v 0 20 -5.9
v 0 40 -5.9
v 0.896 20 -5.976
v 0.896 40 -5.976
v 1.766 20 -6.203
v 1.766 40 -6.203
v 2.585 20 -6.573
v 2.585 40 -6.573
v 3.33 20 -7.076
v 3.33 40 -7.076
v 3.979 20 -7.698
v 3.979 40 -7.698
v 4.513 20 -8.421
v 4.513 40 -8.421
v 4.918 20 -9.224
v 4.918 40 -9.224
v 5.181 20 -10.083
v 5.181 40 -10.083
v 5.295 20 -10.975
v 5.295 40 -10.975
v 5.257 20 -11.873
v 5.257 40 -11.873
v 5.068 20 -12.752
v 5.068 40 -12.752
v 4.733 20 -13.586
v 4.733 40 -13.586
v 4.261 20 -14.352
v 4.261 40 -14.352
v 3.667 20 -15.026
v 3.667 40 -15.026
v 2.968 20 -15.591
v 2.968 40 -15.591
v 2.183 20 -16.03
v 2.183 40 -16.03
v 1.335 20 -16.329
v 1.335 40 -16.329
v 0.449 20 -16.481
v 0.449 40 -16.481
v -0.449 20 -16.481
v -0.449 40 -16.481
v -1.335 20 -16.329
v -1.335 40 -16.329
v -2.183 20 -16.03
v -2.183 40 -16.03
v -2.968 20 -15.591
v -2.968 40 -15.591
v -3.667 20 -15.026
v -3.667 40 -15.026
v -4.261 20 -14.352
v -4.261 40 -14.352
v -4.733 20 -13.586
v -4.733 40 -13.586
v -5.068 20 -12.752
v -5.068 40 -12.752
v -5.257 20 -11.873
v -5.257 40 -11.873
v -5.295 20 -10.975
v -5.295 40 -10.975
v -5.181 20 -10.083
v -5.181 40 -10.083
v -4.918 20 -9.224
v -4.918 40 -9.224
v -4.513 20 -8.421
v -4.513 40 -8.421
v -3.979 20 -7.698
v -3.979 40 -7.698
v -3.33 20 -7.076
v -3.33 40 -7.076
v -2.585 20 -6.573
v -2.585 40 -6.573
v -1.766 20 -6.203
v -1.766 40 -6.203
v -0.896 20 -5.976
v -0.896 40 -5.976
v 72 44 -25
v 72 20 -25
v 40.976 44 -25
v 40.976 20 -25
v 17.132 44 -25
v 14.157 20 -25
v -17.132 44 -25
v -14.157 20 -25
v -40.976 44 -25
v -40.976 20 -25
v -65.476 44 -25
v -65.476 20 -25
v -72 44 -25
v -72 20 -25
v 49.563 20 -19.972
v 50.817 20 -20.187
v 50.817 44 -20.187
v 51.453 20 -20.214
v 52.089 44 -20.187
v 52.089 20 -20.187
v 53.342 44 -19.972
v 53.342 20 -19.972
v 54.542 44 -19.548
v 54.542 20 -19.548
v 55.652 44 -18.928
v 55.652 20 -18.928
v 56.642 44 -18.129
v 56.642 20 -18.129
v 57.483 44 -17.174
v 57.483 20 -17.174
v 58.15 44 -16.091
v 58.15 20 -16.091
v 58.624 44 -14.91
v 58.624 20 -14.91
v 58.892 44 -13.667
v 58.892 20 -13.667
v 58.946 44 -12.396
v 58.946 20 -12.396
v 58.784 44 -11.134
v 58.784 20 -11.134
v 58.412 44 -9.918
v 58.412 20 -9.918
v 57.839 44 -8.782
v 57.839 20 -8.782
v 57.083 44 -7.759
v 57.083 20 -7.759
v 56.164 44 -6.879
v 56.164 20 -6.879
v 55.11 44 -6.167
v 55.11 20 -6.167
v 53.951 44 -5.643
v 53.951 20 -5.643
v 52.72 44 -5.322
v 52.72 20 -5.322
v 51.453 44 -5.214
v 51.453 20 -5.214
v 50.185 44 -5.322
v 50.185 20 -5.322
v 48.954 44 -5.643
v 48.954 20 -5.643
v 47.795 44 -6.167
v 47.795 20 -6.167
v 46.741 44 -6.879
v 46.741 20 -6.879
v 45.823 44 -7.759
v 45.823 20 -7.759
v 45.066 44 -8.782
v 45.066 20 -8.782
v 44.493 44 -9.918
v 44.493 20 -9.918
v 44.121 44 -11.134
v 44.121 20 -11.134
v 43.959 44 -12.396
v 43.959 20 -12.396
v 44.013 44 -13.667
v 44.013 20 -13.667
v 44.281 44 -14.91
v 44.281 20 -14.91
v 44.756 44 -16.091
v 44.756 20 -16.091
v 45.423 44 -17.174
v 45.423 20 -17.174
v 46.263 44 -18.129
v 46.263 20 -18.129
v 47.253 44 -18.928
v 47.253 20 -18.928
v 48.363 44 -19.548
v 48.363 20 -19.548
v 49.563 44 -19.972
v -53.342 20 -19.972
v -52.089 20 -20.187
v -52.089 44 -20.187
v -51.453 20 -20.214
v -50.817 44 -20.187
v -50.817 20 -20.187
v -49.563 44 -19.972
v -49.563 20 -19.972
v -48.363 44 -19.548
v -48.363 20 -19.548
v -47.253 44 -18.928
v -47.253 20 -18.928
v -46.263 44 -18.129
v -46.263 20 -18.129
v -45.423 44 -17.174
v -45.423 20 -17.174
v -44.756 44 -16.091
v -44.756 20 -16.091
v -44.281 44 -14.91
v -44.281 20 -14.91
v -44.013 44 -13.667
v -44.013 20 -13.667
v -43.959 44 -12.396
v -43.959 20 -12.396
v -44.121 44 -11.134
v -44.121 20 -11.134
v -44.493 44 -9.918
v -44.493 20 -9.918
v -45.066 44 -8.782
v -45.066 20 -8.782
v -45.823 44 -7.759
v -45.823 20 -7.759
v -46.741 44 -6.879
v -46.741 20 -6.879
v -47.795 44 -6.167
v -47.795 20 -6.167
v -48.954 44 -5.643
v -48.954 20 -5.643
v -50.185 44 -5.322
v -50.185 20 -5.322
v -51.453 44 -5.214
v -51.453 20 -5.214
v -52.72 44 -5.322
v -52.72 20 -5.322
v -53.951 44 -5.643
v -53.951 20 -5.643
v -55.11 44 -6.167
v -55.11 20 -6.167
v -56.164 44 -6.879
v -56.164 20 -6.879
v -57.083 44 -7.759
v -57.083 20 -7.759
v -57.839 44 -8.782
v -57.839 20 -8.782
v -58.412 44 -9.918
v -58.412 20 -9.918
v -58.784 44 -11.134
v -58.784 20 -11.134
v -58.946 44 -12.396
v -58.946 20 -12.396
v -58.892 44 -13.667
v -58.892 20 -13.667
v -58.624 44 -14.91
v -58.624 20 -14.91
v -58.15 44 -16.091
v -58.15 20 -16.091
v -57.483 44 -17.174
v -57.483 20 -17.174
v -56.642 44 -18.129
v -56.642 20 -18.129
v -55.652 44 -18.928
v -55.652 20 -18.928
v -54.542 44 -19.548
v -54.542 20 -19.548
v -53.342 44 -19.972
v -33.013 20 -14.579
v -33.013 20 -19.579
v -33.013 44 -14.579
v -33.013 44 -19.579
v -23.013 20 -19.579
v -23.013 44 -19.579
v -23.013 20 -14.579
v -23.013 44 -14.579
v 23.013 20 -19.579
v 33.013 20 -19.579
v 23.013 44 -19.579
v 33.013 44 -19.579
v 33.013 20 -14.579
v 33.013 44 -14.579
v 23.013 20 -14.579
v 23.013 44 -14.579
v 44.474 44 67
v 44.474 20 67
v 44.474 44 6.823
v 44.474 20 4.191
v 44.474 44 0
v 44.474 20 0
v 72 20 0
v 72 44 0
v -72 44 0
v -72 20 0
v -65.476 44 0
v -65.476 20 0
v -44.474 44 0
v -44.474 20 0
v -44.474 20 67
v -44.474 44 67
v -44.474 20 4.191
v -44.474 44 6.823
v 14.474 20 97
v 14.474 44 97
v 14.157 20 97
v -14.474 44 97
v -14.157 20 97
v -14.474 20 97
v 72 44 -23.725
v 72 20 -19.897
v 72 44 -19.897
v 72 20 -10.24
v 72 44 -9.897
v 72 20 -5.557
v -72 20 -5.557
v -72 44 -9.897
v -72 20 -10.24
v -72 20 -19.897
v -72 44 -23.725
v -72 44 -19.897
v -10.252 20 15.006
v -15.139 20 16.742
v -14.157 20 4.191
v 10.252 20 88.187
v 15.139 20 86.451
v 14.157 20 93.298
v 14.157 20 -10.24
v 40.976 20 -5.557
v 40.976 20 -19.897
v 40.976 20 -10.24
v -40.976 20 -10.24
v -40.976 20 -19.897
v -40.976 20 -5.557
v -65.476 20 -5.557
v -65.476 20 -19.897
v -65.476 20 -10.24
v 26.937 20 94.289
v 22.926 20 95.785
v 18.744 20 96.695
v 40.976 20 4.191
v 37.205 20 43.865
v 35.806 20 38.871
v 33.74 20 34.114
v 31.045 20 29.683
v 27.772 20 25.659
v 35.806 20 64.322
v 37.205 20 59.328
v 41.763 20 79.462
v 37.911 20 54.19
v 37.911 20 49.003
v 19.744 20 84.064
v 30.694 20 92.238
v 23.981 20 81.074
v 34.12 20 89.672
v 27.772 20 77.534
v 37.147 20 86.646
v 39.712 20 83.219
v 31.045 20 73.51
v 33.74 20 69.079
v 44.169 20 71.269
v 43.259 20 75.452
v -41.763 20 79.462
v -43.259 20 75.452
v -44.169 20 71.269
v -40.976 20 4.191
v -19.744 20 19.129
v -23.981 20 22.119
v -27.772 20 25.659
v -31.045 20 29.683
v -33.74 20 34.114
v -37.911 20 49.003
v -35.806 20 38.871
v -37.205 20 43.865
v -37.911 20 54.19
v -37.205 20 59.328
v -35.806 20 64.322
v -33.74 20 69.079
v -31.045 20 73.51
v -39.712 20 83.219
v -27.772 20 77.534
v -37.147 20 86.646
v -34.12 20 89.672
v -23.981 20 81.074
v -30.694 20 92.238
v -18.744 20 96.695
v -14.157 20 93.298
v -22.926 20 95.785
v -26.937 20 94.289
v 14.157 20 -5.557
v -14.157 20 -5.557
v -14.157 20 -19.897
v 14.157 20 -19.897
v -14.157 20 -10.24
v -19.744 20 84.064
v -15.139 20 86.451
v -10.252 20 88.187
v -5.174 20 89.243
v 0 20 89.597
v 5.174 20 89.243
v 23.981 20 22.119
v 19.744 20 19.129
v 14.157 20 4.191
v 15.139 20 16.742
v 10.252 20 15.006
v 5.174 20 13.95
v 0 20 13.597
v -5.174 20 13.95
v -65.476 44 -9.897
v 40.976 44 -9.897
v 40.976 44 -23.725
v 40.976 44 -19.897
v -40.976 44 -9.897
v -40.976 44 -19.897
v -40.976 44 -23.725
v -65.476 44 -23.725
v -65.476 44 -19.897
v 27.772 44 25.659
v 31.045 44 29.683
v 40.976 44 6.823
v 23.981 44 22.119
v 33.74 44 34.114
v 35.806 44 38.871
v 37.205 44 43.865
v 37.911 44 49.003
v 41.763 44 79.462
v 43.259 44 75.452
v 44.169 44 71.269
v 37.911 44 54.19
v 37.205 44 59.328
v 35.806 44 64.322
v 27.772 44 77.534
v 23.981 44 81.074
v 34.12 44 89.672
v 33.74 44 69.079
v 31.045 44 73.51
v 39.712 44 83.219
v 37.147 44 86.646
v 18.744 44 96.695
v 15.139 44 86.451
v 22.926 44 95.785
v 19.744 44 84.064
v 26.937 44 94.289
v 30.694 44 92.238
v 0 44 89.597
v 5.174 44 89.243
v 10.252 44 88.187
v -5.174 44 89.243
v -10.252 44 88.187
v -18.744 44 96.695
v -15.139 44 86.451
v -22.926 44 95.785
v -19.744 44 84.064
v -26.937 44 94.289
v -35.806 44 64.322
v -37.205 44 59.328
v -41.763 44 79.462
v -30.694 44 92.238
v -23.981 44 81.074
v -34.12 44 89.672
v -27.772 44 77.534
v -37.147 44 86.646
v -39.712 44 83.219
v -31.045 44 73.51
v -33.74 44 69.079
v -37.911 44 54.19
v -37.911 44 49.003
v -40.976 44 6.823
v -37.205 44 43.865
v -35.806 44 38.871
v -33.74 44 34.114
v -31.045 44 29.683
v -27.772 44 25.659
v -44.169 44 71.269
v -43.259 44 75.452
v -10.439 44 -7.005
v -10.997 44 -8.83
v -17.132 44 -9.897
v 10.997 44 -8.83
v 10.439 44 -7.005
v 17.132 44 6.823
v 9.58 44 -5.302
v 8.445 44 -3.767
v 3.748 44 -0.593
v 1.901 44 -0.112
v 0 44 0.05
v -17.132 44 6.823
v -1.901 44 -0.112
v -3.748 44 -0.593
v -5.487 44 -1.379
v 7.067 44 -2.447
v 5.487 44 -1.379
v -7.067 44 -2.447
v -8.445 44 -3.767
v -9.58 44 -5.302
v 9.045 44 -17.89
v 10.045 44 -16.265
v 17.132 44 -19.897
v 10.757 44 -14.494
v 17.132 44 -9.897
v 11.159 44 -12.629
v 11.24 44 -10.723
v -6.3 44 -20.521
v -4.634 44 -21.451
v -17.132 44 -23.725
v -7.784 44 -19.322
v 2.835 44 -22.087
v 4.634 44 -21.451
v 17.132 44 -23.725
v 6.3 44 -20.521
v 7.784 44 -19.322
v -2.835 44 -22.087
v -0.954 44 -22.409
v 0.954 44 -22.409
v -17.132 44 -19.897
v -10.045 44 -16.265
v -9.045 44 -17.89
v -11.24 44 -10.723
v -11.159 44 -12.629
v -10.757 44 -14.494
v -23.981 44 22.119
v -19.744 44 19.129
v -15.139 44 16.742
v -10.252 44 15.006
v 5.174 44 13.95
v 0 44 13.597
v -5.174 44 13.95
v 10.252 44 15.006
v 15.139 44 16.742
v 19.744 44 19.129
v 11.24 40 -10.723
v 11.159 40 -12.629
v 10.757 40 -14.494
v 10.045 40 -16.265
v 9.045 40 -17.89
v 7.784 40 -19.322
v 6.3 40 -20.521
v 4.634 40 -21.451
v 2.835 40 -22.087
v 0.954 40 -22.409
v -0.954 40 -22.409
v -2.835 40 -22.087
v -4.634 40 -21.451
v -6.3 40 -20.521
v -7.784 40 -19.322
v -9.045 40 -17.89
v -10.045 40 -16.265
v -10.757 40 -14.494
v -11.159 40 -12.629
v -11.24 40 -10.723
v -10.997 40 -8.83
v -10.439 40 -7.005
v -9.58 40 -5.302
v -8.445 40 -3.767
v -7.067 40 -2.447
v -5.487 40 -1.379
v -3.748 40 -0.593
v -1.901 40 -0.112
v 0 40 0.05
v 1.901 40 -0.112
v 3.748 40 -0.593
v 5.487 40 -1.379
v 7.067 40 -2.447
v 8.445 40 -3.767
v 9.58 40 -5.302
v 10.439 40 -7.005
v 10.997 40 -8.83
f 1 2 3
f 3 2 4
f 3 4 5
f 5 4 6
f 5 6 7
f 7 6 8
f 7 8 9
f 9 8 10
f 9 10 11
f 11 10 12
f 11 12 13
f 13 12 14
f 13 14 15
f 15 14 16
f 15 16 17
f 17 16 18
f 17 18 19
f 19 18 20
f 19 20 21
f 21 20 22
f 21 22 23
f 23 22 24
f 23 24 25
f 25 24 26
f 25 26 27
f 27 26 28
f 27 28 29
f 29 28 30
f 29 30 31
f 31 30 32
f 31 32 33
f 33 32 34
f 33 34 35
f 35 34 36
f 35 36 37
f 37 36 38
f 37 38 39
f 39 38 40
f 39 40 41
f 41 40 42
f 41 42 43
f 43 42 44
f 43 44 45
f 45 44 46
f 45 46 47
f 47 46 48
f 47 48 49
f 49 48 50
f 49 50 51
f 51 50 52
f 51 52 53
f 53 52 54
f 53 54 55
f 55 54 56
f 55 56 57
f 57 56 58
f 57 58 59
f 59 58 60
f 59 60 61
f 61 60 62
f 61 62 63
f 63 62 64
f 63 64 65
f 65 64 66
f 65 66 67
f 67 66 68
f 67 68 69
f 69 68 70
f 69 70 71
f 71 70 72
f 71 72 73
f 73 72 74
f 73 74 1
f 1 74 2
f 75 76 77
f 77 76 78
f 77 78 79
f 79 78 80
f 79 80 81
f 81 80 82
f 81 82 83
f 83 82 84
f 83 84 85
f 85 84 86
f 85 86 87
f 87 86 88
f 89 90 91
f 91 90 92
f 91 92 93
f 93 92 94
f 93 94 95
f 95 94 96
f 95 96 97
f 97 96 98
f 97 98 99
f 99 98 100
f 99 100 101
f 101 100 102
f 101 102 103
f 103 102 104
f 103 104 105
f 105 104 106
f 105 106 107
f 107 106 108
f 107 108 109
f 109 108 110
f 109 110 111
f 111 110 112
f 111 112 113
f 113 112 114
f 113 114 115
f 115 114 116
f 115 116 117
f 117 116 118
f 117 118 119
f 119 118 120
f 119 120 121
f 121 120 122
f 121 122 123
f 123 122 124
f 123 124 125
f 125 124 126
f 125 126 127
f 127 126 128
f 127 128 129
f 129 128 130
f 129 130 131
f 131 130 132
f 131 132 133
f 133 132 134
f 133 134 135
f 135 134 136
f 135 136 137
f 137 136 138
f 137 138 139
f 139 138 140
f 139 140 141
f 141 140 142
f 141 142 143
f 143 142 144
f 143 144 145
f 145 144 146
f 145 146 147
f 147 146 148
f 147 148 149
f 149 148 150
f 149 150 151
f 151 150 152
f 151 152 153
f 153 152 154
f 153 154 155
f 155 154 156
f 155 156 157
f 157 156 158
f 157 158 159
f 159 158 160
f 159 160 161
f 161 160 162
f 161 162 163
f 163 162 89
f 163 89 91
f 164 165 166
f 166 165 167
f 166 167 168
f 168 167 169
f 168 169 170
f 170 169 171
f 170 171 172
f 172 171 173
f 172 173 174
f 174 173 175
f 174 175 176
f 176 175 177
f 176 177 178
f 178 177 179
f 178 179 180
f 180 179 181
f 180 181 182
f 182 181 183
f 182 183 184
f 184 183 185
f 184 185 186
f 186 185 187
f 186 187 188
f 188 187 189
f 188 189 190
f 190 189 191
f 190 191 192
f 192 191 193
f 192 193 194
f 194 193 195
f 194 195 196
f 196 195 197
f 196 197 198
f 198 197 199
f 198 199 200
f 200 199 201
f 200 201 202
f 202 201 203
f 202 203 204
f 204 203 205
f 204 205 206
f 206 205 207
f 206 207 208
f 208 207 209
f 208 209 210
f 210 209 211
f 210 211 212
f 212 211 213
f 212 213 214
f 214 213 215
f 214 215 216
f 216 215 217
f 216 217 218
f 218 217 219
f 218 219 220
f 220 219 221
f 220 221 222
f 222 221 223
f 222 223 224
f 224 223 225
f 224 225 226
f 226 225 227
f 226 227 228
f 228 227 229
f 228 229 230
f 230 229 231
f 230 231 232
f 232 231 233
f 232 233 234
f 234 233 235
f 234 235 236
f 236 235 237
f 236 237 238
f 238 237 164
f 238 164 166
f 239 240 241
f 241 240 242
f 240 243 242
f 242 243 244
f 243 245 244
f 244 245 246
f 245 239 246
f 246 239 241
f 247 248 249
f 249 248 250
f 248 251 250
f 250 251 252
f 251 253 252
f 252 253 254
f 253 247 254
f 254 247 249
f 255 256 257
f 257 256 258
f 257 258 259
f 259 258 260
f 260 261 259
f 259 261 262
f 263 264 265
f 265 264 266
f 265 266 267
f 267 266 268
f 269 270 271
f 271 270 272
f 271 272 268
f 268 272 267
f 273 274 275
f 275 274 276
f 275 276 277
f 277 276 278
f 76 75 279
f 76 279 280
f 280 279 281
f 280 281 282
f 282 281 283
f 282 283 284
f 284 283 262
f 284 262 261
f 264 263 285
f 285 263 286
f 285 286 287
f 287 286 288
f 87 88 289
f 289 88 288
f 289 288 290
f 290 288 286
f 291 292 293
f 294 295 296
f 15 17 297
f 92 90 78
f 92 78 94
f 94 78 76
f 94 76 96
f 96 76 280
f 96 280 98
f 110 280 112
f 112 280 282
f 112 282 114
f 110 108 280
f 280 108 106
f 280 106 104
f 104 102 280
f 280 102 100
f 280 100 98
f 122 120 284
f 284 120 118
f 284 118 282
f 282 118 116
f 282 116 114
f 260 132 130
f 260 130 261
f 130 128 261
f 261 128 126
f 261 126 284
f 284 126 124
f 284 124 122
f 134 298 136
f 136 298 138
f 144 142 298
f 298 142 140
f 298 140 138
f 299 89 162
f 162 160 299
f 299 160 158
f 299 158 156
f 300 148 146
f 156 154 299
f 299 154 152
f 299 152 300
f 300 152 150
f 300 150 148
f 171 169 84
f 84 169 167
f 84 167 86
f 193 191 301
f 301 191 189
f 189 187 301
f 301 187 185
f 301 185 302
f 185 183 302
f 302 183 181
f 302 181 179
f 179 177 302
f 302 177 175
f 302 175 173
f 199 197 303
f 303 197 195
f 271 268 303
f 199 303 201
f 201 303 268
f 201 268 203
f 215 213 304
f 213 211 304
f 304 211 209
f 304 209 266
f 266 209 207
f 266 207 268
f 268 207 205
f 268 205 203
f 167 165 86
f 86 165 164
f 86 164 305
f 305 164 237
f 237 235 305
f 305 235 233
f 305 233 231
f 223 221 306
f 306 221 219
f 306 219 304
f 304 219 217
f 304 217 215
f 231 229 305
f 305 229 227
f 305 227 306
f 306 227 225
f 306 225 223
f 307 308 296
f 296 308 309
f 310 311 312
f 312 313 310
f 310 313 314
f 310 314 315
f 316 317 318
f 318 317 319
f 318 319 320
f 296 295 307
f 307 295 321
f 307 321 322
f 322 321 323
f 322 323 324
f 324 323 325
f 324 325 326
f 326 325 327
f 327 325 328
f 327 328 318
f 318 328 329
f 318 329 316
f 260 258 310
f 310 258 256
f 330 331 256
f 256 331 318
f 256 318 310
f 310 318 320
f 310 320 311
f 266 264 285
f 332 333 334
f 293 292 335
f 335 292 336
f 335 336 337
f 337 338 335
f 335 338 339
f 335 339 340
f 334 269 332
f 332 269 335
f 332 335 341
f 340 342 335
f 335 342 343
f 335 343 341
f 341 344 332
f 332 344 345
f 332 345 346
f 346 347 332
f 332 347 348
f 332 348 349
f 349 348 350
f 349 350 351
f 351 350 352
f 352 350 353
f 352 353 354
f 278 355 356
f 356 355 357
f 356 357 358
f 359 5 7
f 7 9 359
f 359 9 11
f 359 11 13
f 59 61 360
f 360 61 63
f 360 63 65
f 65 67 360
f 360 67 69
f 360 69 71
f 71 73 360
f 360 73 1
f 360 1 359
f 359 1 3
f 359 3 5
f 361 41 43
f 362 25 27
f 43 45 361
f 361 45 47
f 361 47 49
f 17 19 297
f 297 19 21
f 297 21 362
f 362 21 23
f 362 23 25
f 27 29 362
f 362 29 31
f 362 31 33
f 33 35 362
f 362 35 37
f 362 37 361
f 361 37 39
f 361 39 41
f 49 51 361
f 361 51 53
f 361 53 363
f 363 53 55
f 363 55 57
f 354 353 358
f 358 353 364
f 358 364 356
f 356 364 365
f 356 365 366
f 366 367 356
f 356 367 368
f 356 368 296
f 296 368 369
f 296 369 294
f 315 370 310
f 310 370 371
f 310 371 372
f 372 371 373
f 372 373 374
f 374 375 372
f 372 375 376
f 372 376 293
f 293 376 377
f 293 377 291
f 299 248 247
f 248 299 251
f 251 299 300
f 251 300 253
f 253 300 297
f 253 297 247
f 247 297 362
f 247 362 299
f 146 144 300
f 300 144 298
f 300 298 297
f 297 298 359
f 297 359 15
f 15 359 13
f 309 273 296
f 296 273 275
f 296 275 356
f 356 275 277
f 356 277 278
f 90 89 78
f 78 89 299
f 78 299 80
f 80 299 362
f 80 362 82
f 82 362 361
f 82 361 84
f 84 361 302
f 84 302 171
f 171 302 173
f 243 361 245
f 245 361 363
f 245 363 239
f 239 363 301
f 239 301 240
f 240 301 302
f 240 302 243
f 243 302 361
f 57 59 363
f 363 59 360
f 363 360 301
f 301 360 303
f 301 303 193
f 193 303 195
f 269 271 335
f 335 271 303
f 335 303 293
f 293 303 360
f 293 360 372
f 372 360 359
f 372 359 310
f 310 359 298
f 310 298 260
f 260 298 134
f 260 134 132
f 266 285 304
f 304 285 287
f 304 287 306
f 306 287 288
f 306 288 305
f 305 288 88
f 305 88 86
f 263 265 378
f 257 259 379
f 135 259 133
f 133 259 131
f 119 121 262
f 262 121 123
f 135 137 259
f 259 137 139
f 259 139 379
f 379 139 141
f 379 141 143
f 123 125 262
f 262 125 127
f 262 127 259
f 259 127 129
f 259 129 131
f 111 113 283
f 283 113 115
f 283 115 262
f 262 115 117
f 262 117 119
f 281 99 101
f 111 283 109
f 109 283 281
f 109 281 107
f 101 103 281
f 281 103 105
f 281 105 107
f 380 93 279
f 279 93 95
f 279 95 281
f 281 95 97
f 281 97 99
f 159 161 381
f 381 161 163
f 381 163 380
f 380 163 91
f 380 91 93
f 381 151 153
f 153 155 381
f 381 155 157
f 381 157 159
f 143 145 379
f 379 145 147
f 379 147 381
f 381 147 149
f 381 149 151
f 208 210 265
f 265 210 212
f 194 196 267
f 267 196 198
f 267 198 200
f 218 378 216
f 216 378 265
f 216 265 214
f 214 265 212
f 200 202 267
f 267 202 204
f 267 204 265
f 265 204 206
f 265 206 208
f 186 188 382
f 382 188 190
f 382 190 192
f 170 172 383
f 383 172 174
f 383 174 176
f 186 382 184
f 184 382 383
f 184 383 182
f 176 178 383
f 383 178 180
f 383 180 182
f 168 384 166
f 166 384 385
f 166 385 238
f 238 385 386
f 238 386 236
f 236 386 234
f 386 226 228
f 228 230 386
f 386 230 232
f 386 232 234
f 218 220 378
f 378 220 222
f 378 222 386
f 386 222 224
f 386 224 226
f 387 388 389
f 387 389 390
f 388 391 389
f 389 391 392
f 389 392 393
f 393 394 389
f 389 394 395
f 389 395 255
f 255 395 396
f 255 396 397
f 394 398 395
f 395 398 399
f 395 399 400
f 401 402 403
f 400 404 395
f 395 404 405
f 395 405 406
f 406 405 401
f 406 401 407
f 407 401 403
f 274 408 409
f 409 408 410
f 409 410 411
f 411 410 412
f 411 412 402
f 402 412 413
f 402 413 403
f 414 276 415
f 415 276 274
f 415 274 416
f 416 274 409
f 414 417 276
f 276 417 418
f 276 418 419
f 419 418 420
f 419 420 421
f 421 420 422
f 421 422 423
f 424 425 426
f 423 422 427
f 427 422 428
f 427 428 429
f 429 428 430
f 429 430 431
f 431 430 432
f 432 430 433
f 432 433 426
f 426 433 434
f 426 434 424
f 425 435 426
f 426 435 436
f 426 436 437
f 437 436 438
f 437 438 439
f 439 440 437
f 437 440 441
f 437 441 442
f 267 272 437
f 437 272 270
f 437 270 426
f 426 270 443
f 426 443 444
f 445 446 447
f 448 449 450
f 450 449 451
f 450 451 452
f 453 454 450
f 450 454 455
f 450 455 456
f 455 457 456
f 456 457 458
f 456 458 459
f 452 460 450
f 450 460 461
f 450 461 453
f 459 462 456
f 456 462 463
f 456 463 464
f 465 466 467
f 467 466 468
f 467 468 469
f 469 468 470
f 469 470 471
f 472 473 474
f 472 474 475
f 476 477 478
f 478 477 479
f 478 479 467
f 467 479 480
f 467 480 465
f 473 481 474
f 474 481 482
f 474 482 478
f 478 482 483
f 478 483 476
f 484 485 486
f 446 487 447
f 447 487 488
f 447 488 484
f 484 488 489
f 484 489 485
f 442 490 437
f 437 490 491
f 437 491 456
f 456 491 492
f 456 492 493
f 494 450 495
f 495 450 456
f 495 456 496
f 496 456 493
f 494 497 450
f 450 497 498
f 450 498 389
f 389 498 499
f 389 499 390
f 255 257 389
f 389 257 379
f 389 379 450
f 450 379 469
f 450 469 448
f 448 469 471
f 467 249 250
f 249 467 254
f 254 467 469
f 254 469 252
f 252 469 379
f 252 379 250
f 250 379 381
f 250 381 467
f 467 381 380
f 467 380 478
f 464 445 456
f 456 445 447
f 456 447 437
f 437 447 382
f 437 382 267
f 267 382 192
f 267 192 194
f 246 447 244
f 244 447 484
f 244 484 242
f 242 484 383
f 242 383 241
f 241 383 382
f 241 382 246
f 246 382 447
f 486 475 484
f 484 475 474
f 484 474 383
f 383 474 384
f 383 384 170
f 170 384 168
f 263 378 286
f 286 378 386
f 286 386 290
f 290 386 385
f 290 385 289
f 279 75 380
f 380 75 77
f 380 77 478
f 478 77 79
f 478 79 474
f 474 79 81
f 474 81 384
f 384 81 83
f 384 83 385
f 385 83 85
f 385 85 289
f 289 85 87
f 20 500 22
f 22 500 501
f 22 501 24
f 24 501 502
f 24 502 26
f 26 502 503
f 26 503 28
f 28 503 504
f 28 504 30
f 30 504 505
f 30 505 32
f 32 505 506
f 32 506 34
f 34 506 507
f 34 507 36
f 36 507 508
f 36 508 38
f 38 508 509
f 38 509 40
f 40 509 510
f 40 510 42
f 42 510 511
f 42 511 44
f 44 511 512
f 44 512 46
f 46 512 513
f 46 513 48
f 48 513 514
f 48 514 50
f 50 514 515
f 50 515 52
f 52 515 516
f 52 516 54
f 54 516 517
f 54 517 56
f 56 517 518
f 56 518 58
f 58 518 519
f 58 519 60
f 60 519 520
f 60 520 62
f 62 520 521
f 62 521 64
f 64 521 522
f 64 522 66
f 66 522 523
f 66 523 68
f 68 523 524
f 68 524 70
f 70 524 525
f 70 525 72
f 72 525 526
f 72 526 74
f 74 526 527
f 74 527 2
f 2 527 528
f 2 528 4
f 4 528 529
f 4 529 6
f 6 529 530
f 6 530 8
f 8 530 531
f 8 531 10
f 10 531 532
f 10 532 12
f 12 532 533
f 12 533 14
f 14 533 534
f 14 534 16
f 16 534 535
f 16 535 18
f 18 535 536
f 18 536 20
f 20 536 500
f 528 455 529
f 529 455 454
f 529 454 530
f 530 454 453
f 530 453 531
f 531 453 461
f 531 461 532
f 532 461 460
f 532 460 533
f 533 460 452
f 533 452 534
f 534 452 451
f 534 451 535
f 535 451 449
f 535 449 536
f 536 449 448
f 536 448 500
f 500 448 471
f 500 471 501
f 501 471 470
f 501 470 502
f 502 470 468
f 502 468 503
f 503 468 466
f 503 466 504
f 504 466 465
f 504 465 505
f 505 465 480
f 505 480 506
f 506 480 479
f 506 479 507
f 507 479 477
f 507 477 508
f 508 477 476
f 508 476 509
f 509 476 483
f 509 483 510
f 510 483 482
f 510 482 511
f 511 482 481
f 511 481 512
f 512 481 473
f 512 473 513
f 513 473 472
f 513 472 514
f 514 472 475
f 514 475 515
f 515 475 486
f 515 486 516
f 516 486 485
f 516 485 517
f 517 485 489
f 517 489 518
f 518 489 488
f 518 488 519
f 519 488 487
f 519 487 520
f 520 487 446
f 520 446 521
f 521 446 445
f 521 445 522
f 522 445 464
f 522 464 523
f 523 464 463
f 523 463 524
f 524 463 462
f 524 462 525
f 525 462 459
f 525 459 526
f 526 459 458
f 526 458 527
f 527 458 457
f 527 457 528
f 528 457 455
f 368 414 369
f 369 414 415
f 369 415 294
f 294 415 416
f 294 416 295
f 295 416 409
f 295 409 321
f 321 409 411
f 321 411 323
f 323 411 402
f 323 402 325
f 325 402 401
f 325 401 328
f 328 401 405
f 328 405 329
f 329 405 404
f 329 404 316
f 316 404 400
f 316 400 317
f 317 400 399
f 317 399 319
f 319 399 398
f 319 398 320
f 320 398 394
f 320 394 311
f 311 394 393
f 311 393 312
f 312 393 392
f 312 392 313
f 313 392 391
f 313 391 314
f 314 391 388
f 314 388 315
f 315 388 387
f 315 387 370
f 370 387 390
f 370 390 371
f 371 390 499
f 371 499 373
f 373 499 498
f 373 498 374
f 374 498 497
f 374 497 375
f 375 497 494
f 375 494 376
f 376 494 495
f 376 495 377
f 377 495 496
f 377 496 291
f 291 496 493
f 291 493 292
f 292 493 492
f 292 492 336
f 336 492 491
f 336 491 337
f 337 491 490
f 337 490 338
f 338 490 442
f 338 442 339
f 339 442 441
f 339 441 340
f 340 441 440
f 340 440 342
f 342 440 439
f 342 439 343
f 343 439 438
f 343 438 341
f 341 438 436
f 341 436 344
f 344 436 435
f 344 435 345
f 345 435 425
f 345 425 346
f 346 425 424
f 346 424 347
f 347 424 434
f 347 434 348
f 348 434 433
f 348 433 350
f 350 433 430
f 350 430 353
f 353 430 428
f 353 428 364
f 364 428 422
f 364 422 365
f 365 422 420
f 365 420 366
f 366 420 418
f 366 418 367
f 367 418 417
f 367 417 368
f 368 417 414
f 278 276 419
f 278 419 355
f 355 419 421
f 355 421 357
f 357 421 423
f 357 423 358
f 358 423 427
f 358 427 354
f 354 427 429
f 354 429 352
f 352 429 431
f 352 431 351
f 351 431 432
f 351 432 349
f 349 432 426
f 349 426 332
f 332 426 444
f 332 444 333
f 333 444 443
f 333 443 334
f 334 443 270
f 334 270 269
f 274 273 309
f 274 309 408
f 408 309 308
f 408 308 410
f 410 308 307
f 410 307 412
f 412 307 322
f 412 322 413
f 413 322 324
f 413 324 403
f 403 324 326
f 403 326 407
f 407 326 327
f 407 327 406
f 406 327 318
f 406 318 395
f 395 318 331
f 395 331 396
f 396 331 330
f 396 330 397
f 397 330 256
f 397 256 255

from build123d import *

# Parameters (mm, degrees)
BOSS_EXTRUDE1_DEPTH = 60
SKETCH2_R           = 7.5
CUT_EXTRUDE1_DEPTH  = 60
SKETCH3_R           = 5.25
CUT_EXTRUDE2_DEPTH  = 60
SKETCH4_R           = 11.5
CUT_EXTRUDE3_DEPTH  = 4
SKETCH5_W           = 10
SKETCH5_H           = 5
CUT_EXTRUDE4_DEPTH  = 60
SKETCH6_W           = 130
SKETCH6_H           = 90
BOSS_EXTRUDE2_DEPTH = 60
SKETCH8_W           = 130
SKETCH8_H           = 115
CUT_EXTRUDE6_DEPTH  = 20
SKETCH9_W           = 20.525641278
SKETCH9_H           = 90
CUT_EXTRUDE7_DEPTH  = 45
SKETCH7_R           = 38.5
CUT_EXTRUDE8_DEPTH  = 40
SKETCH12_W          = 88.948717444
SKETCH12_H          = 40
BOSS_EXTRUDE4_DEPTH = 7
SKETCH13_W          = 25
SKETCH13_H          = 40
BOSS_EXTRUDE5_DEPTH = 7
SKETCH14_W          = 25
SKETCH14_H          = 40
BOSS_EXTRUDE6_DEPTH = 7
SKETCH16_W          = 144.296296296
SKETCH16_H          = 122.248772368
CUT_EXTRUDE9_DEPTH  = 16
SKETCH23_R          = 10.574878896
BOSS_EXTRUDE7_DEPTH = 24
SKETCH24_R          = 5.3
CUT_EXTRUDE11_DEPTH = 24
SKETCH25_R          = 11.25
CUT_EXTRUDE12_DEPTH = 4
SKETCH26_R          = 41.241524366
BOSS_EXTRUDE8_DEPTH = 24
SKETCH27_R          = 38
CUT_EXTRUDE13_DEPTH = 24
FILLET2_R           = 30


with BuildPart() as part:
    # Sketch1 → Boss-Extrude1 (new body)
    with BuildSketch(Plane(origin=(0, 0, 0), x_dir=(1, 0, 0), z_dir=(0, 1, 0))):
        with BuildLine():
            Line((-65, 25), (65, 25))
            Line((65, 25), (65, -25))
            Line((65, -25), (32.897568299, -25))
            ThreePointArc((32.897568299, -25), (0, -6.5), (-32.897568299, -25))
            Line((-32.897568299, -25), (-65, -25))
            Line((-65, -25), (-65, 25))
        make_face()
    extrude(amount=BOSS_EXTRUDE1_DEPTH)

    # Sketch2 → Cut-Extrude1 (cut)
    with BuildSketch(Plane(origin=(0, 60, 0), x_dir=(1, 0, 0), z_dir=(0, 1, 0))):
        with Locations(Location((-51.452605548, 12.714222387, 0), (0, 0, 270))):
            Circle(SKETCH2_R)
        with Locations(Location((51.452605548, 12.714222387, 0), (0, 0, 90))):
            Circle(SKETCH2_R)
    extrude(amount=-CUT_EXTRUDE1_DEPTH, mode=Mode.SUBTRACT)

    # Sketch3 → Cut-Extrude2 (cut)
    with BuildSketch(Plane(origin=(0, 60, 0), x_dir=(1, 0, 0), z_dir=(0, 1, 0))):
        with Locations(Location((0, 12.714222387, 0), (0, 0, 270))):
            Circle(SKETCH3_R)
    extrude(amount=-CUT_EXTRUDE2_DEPTH, mode=Mode.SUBTRACT)

    # Sketch4 → Cut-Extrude3 (cut)
    with BuildSketch(Plane(origin=(0, 60, 0), x_dir=(1, 0, 0), z_dir=(0, 1, 0))):
        with Locations(Location((0, 12.714222387, 0), (0, 0, 270))):
            Circle(SKETCH4_R)
    extrude(amount=-CUT_EXTRUDE3_DEPTH, mode=Mode.SUBTRACT)

    # Sketch5 → Cut-Extrude4 (cut)
    with BuildSketch(Plane(origin=(0, 60, 0), x_dir=(1, 0, 0), z_dir=(0, 1, 0))):
        with Locations((-52.884181241, -16.580341224)):
            Rectangle(SKETCH5_W, SKETCH5_H)
        with Locations((-28.013085243, 17.079406564)):
            Rectangle(SKETCH5_W, SKETCH5_H)
        with Locations((52.884181241, -16.580341224)):
            Rectangle(SKETCH5_W, SKETCH5_H)
        with Locations((28.013085243, 17.079406564)):
            Rectangle(SKETCH5_W, SKETCH5_H)
    extrude(amount=-CUT_EXTRUDE4_DEPTH, mode=Mode.SUBTRACT)

    # Sketch6 → Boss-Extrude2 (add)
    with BuildSketch(Plane(origin=(0, 60, 0), x_dir=(1, 0, 0), z_dir=(0, 1, 0))):
        with Locations((0, -45)):
            Rectangle(SKETCH6_W, SKETCH6_H)
    extrude(amount=-BOSS_EXTRUDE2_DEPTH)

    # Sketch8 → Cut-Extrude6 (cut)
    with BuildSketch(Plane.XZ):
        with Locations((0, 32.5)):
            Rectangle(SKETCH8_W, SKETCH8_H)
    extrude(amount=-CUT_EXTRUDE6_DEPTH, mode=Mode.SUBTRACT)

    # Sketch9 → Cut-Extrude7 (cut)
    with BuildSketch(Plane(origin=(0, 60, 0), x_dir=(1, 0, 0), z_dir=(0, 1, 0))):
        with Locations((-54.737179361, -45)):
            Rectangle(SKETCH9_W, SKETCH9_H)
        with Locations((54.737179361, -45)):
            Rectangle(SKETCH9_W, SKETCH9_H)
    extrude(amount=-CUT_EXTRUDE7_DEPTH, mode=Mode.SUBTRACT)

    # Sketch7 → Cut-Extrude8 (cut)
    with BuildSketch(Plane(origin=(0, 60, 0), x_dir=(1, 0, 0), z_dir=(0, 1, 0))):
        with Locations(Location((0, -51.285777613, 0), (0, 0, 270))):
            Circle(SKETCH7_R)
    extrude(amount=-CUT_EXTRUDE8_DEPTH, mode=Mode.SUBTRACT)

    # Sketch12 → Boss-Extrude4 (add)
    with BuildSketch(Plane.XY.offset(90)):
        with Locations((0, 40)):
            Rectangle(SKETCH12_W, SKETCH12_H)
    extrude(amount=BOSS_EXTRUDE4_DEPTH)

    # Sketch13 → Boss-Extrude5 (add)
    with BuildSketch(Plane(origin=(65, 0, 0), x_dir=(0, 0, -1), z_dir=(1, 0, 0))):
        with Locations((12.5, 40)):
            Rectangle(SKETCH13_W, SKETCH13_H)
    extrude(amount=BOSS_EXTRUDE5_DEPTH)

    # Sketch14 → Boss-Extrude6 (add)
    with BuildSketch(Plane.ZY.offset(65)):
        with Locations((-12.5, 40)):
            Rectangle(SKETCH14_W, SKETCH14_H)
    extrude(amount=BOSS_EXTRUDE6_DEPTH)

    # Sketch16 → Cut-Extrude9 (cut)
    with BuildSketch(Plane(origin=(0, 60, 0), x_dir=(1, 0, 0), z_dir=(0, 1, 0))):
        with Locations((0.148148148, -36.124386184)):
            Rectangle(SKETCH16_W, SKETCH16_H)
    extrude(amount=-CUT_EXTRUDE9_DEPTH, mode=Mode.SUBTRACT)

    # Sketch23 → Boss-Extrude7 (add)
    with BuildSketch(Plane(origin=(0, 44, 0), x_dir=(1, 0, 0), z_dir=(0, 1, 0))):
        with Locations((0, 12.714222387)):
            Circle(SKETCH23_R)
    extrude(amount=-BOSS_EXTRUDE7_DEPTH)

    # Sketch24 → Cut-Extrude11 (cut)
    with BuildSketch(Plane(origin=(0, 44, 0), x_dir=(1, 0, 0), z_dir=(0, 1, 0))):
        with Locations(Location((0, 11.2, 0), (0, 0, 270))):
            Circle(SKETCH24_R)
    extrude(amount=-CUT_EXTRUDE11_DEPTH, mode=Mode.SUBTRACT)

    # Sketch25 → Cut-Extrude12 (cut)
    with BuildSketch(Plane(origin=(0, 44, 0), x_dir=(1, 0, 0), z_dir=(0, 1, 0))):
        with Locations(Location((0, 11.2, 0), (0, 0, 270))):
            Circle(SKETCH25_R)
    extrude(amount=-CUT_EXTRUDE12_DEPTH, mode=Mode.SUBTRACT)

    # Sketch26 → Boss-Extrude8 (add)
    with BuildSketch(Plane(origin=(0, 44, 0), x_dir=(1, 0, 0), z_dir=(0, 1, 0))):
        with Locations((0, -51.285777613)):
            Circle(SKETCH26_R)
    extrude(amount=-BOSS_EXTRUDE8_DEPTH)

    # Sketch27 → Cut-Extrude13 (cut)
    with BuildSketch(Plane(origin=(0, 44, 0), x_dir=(1, 0, 0), z_dir=(0, 1, 0))):
        with Locations(Location((0, -51.59650437, 0), (0, 0, 270))):
            Circle(SKETCH27_R)
    extrude(amount=-CUT_EXTRUDE13_DEPTH, mode=Mode.SUBTRACT)

    # Fillet2
    fillet2_edges = [part.edges().sort_by_distance(p)[0] for p in [
        (44.474358722, 32, 97),
        (-44.474358722, 32, 97),
    ]]
    fillet(fillet2_edges, radius=FILLET2_R)


solid = part.part
